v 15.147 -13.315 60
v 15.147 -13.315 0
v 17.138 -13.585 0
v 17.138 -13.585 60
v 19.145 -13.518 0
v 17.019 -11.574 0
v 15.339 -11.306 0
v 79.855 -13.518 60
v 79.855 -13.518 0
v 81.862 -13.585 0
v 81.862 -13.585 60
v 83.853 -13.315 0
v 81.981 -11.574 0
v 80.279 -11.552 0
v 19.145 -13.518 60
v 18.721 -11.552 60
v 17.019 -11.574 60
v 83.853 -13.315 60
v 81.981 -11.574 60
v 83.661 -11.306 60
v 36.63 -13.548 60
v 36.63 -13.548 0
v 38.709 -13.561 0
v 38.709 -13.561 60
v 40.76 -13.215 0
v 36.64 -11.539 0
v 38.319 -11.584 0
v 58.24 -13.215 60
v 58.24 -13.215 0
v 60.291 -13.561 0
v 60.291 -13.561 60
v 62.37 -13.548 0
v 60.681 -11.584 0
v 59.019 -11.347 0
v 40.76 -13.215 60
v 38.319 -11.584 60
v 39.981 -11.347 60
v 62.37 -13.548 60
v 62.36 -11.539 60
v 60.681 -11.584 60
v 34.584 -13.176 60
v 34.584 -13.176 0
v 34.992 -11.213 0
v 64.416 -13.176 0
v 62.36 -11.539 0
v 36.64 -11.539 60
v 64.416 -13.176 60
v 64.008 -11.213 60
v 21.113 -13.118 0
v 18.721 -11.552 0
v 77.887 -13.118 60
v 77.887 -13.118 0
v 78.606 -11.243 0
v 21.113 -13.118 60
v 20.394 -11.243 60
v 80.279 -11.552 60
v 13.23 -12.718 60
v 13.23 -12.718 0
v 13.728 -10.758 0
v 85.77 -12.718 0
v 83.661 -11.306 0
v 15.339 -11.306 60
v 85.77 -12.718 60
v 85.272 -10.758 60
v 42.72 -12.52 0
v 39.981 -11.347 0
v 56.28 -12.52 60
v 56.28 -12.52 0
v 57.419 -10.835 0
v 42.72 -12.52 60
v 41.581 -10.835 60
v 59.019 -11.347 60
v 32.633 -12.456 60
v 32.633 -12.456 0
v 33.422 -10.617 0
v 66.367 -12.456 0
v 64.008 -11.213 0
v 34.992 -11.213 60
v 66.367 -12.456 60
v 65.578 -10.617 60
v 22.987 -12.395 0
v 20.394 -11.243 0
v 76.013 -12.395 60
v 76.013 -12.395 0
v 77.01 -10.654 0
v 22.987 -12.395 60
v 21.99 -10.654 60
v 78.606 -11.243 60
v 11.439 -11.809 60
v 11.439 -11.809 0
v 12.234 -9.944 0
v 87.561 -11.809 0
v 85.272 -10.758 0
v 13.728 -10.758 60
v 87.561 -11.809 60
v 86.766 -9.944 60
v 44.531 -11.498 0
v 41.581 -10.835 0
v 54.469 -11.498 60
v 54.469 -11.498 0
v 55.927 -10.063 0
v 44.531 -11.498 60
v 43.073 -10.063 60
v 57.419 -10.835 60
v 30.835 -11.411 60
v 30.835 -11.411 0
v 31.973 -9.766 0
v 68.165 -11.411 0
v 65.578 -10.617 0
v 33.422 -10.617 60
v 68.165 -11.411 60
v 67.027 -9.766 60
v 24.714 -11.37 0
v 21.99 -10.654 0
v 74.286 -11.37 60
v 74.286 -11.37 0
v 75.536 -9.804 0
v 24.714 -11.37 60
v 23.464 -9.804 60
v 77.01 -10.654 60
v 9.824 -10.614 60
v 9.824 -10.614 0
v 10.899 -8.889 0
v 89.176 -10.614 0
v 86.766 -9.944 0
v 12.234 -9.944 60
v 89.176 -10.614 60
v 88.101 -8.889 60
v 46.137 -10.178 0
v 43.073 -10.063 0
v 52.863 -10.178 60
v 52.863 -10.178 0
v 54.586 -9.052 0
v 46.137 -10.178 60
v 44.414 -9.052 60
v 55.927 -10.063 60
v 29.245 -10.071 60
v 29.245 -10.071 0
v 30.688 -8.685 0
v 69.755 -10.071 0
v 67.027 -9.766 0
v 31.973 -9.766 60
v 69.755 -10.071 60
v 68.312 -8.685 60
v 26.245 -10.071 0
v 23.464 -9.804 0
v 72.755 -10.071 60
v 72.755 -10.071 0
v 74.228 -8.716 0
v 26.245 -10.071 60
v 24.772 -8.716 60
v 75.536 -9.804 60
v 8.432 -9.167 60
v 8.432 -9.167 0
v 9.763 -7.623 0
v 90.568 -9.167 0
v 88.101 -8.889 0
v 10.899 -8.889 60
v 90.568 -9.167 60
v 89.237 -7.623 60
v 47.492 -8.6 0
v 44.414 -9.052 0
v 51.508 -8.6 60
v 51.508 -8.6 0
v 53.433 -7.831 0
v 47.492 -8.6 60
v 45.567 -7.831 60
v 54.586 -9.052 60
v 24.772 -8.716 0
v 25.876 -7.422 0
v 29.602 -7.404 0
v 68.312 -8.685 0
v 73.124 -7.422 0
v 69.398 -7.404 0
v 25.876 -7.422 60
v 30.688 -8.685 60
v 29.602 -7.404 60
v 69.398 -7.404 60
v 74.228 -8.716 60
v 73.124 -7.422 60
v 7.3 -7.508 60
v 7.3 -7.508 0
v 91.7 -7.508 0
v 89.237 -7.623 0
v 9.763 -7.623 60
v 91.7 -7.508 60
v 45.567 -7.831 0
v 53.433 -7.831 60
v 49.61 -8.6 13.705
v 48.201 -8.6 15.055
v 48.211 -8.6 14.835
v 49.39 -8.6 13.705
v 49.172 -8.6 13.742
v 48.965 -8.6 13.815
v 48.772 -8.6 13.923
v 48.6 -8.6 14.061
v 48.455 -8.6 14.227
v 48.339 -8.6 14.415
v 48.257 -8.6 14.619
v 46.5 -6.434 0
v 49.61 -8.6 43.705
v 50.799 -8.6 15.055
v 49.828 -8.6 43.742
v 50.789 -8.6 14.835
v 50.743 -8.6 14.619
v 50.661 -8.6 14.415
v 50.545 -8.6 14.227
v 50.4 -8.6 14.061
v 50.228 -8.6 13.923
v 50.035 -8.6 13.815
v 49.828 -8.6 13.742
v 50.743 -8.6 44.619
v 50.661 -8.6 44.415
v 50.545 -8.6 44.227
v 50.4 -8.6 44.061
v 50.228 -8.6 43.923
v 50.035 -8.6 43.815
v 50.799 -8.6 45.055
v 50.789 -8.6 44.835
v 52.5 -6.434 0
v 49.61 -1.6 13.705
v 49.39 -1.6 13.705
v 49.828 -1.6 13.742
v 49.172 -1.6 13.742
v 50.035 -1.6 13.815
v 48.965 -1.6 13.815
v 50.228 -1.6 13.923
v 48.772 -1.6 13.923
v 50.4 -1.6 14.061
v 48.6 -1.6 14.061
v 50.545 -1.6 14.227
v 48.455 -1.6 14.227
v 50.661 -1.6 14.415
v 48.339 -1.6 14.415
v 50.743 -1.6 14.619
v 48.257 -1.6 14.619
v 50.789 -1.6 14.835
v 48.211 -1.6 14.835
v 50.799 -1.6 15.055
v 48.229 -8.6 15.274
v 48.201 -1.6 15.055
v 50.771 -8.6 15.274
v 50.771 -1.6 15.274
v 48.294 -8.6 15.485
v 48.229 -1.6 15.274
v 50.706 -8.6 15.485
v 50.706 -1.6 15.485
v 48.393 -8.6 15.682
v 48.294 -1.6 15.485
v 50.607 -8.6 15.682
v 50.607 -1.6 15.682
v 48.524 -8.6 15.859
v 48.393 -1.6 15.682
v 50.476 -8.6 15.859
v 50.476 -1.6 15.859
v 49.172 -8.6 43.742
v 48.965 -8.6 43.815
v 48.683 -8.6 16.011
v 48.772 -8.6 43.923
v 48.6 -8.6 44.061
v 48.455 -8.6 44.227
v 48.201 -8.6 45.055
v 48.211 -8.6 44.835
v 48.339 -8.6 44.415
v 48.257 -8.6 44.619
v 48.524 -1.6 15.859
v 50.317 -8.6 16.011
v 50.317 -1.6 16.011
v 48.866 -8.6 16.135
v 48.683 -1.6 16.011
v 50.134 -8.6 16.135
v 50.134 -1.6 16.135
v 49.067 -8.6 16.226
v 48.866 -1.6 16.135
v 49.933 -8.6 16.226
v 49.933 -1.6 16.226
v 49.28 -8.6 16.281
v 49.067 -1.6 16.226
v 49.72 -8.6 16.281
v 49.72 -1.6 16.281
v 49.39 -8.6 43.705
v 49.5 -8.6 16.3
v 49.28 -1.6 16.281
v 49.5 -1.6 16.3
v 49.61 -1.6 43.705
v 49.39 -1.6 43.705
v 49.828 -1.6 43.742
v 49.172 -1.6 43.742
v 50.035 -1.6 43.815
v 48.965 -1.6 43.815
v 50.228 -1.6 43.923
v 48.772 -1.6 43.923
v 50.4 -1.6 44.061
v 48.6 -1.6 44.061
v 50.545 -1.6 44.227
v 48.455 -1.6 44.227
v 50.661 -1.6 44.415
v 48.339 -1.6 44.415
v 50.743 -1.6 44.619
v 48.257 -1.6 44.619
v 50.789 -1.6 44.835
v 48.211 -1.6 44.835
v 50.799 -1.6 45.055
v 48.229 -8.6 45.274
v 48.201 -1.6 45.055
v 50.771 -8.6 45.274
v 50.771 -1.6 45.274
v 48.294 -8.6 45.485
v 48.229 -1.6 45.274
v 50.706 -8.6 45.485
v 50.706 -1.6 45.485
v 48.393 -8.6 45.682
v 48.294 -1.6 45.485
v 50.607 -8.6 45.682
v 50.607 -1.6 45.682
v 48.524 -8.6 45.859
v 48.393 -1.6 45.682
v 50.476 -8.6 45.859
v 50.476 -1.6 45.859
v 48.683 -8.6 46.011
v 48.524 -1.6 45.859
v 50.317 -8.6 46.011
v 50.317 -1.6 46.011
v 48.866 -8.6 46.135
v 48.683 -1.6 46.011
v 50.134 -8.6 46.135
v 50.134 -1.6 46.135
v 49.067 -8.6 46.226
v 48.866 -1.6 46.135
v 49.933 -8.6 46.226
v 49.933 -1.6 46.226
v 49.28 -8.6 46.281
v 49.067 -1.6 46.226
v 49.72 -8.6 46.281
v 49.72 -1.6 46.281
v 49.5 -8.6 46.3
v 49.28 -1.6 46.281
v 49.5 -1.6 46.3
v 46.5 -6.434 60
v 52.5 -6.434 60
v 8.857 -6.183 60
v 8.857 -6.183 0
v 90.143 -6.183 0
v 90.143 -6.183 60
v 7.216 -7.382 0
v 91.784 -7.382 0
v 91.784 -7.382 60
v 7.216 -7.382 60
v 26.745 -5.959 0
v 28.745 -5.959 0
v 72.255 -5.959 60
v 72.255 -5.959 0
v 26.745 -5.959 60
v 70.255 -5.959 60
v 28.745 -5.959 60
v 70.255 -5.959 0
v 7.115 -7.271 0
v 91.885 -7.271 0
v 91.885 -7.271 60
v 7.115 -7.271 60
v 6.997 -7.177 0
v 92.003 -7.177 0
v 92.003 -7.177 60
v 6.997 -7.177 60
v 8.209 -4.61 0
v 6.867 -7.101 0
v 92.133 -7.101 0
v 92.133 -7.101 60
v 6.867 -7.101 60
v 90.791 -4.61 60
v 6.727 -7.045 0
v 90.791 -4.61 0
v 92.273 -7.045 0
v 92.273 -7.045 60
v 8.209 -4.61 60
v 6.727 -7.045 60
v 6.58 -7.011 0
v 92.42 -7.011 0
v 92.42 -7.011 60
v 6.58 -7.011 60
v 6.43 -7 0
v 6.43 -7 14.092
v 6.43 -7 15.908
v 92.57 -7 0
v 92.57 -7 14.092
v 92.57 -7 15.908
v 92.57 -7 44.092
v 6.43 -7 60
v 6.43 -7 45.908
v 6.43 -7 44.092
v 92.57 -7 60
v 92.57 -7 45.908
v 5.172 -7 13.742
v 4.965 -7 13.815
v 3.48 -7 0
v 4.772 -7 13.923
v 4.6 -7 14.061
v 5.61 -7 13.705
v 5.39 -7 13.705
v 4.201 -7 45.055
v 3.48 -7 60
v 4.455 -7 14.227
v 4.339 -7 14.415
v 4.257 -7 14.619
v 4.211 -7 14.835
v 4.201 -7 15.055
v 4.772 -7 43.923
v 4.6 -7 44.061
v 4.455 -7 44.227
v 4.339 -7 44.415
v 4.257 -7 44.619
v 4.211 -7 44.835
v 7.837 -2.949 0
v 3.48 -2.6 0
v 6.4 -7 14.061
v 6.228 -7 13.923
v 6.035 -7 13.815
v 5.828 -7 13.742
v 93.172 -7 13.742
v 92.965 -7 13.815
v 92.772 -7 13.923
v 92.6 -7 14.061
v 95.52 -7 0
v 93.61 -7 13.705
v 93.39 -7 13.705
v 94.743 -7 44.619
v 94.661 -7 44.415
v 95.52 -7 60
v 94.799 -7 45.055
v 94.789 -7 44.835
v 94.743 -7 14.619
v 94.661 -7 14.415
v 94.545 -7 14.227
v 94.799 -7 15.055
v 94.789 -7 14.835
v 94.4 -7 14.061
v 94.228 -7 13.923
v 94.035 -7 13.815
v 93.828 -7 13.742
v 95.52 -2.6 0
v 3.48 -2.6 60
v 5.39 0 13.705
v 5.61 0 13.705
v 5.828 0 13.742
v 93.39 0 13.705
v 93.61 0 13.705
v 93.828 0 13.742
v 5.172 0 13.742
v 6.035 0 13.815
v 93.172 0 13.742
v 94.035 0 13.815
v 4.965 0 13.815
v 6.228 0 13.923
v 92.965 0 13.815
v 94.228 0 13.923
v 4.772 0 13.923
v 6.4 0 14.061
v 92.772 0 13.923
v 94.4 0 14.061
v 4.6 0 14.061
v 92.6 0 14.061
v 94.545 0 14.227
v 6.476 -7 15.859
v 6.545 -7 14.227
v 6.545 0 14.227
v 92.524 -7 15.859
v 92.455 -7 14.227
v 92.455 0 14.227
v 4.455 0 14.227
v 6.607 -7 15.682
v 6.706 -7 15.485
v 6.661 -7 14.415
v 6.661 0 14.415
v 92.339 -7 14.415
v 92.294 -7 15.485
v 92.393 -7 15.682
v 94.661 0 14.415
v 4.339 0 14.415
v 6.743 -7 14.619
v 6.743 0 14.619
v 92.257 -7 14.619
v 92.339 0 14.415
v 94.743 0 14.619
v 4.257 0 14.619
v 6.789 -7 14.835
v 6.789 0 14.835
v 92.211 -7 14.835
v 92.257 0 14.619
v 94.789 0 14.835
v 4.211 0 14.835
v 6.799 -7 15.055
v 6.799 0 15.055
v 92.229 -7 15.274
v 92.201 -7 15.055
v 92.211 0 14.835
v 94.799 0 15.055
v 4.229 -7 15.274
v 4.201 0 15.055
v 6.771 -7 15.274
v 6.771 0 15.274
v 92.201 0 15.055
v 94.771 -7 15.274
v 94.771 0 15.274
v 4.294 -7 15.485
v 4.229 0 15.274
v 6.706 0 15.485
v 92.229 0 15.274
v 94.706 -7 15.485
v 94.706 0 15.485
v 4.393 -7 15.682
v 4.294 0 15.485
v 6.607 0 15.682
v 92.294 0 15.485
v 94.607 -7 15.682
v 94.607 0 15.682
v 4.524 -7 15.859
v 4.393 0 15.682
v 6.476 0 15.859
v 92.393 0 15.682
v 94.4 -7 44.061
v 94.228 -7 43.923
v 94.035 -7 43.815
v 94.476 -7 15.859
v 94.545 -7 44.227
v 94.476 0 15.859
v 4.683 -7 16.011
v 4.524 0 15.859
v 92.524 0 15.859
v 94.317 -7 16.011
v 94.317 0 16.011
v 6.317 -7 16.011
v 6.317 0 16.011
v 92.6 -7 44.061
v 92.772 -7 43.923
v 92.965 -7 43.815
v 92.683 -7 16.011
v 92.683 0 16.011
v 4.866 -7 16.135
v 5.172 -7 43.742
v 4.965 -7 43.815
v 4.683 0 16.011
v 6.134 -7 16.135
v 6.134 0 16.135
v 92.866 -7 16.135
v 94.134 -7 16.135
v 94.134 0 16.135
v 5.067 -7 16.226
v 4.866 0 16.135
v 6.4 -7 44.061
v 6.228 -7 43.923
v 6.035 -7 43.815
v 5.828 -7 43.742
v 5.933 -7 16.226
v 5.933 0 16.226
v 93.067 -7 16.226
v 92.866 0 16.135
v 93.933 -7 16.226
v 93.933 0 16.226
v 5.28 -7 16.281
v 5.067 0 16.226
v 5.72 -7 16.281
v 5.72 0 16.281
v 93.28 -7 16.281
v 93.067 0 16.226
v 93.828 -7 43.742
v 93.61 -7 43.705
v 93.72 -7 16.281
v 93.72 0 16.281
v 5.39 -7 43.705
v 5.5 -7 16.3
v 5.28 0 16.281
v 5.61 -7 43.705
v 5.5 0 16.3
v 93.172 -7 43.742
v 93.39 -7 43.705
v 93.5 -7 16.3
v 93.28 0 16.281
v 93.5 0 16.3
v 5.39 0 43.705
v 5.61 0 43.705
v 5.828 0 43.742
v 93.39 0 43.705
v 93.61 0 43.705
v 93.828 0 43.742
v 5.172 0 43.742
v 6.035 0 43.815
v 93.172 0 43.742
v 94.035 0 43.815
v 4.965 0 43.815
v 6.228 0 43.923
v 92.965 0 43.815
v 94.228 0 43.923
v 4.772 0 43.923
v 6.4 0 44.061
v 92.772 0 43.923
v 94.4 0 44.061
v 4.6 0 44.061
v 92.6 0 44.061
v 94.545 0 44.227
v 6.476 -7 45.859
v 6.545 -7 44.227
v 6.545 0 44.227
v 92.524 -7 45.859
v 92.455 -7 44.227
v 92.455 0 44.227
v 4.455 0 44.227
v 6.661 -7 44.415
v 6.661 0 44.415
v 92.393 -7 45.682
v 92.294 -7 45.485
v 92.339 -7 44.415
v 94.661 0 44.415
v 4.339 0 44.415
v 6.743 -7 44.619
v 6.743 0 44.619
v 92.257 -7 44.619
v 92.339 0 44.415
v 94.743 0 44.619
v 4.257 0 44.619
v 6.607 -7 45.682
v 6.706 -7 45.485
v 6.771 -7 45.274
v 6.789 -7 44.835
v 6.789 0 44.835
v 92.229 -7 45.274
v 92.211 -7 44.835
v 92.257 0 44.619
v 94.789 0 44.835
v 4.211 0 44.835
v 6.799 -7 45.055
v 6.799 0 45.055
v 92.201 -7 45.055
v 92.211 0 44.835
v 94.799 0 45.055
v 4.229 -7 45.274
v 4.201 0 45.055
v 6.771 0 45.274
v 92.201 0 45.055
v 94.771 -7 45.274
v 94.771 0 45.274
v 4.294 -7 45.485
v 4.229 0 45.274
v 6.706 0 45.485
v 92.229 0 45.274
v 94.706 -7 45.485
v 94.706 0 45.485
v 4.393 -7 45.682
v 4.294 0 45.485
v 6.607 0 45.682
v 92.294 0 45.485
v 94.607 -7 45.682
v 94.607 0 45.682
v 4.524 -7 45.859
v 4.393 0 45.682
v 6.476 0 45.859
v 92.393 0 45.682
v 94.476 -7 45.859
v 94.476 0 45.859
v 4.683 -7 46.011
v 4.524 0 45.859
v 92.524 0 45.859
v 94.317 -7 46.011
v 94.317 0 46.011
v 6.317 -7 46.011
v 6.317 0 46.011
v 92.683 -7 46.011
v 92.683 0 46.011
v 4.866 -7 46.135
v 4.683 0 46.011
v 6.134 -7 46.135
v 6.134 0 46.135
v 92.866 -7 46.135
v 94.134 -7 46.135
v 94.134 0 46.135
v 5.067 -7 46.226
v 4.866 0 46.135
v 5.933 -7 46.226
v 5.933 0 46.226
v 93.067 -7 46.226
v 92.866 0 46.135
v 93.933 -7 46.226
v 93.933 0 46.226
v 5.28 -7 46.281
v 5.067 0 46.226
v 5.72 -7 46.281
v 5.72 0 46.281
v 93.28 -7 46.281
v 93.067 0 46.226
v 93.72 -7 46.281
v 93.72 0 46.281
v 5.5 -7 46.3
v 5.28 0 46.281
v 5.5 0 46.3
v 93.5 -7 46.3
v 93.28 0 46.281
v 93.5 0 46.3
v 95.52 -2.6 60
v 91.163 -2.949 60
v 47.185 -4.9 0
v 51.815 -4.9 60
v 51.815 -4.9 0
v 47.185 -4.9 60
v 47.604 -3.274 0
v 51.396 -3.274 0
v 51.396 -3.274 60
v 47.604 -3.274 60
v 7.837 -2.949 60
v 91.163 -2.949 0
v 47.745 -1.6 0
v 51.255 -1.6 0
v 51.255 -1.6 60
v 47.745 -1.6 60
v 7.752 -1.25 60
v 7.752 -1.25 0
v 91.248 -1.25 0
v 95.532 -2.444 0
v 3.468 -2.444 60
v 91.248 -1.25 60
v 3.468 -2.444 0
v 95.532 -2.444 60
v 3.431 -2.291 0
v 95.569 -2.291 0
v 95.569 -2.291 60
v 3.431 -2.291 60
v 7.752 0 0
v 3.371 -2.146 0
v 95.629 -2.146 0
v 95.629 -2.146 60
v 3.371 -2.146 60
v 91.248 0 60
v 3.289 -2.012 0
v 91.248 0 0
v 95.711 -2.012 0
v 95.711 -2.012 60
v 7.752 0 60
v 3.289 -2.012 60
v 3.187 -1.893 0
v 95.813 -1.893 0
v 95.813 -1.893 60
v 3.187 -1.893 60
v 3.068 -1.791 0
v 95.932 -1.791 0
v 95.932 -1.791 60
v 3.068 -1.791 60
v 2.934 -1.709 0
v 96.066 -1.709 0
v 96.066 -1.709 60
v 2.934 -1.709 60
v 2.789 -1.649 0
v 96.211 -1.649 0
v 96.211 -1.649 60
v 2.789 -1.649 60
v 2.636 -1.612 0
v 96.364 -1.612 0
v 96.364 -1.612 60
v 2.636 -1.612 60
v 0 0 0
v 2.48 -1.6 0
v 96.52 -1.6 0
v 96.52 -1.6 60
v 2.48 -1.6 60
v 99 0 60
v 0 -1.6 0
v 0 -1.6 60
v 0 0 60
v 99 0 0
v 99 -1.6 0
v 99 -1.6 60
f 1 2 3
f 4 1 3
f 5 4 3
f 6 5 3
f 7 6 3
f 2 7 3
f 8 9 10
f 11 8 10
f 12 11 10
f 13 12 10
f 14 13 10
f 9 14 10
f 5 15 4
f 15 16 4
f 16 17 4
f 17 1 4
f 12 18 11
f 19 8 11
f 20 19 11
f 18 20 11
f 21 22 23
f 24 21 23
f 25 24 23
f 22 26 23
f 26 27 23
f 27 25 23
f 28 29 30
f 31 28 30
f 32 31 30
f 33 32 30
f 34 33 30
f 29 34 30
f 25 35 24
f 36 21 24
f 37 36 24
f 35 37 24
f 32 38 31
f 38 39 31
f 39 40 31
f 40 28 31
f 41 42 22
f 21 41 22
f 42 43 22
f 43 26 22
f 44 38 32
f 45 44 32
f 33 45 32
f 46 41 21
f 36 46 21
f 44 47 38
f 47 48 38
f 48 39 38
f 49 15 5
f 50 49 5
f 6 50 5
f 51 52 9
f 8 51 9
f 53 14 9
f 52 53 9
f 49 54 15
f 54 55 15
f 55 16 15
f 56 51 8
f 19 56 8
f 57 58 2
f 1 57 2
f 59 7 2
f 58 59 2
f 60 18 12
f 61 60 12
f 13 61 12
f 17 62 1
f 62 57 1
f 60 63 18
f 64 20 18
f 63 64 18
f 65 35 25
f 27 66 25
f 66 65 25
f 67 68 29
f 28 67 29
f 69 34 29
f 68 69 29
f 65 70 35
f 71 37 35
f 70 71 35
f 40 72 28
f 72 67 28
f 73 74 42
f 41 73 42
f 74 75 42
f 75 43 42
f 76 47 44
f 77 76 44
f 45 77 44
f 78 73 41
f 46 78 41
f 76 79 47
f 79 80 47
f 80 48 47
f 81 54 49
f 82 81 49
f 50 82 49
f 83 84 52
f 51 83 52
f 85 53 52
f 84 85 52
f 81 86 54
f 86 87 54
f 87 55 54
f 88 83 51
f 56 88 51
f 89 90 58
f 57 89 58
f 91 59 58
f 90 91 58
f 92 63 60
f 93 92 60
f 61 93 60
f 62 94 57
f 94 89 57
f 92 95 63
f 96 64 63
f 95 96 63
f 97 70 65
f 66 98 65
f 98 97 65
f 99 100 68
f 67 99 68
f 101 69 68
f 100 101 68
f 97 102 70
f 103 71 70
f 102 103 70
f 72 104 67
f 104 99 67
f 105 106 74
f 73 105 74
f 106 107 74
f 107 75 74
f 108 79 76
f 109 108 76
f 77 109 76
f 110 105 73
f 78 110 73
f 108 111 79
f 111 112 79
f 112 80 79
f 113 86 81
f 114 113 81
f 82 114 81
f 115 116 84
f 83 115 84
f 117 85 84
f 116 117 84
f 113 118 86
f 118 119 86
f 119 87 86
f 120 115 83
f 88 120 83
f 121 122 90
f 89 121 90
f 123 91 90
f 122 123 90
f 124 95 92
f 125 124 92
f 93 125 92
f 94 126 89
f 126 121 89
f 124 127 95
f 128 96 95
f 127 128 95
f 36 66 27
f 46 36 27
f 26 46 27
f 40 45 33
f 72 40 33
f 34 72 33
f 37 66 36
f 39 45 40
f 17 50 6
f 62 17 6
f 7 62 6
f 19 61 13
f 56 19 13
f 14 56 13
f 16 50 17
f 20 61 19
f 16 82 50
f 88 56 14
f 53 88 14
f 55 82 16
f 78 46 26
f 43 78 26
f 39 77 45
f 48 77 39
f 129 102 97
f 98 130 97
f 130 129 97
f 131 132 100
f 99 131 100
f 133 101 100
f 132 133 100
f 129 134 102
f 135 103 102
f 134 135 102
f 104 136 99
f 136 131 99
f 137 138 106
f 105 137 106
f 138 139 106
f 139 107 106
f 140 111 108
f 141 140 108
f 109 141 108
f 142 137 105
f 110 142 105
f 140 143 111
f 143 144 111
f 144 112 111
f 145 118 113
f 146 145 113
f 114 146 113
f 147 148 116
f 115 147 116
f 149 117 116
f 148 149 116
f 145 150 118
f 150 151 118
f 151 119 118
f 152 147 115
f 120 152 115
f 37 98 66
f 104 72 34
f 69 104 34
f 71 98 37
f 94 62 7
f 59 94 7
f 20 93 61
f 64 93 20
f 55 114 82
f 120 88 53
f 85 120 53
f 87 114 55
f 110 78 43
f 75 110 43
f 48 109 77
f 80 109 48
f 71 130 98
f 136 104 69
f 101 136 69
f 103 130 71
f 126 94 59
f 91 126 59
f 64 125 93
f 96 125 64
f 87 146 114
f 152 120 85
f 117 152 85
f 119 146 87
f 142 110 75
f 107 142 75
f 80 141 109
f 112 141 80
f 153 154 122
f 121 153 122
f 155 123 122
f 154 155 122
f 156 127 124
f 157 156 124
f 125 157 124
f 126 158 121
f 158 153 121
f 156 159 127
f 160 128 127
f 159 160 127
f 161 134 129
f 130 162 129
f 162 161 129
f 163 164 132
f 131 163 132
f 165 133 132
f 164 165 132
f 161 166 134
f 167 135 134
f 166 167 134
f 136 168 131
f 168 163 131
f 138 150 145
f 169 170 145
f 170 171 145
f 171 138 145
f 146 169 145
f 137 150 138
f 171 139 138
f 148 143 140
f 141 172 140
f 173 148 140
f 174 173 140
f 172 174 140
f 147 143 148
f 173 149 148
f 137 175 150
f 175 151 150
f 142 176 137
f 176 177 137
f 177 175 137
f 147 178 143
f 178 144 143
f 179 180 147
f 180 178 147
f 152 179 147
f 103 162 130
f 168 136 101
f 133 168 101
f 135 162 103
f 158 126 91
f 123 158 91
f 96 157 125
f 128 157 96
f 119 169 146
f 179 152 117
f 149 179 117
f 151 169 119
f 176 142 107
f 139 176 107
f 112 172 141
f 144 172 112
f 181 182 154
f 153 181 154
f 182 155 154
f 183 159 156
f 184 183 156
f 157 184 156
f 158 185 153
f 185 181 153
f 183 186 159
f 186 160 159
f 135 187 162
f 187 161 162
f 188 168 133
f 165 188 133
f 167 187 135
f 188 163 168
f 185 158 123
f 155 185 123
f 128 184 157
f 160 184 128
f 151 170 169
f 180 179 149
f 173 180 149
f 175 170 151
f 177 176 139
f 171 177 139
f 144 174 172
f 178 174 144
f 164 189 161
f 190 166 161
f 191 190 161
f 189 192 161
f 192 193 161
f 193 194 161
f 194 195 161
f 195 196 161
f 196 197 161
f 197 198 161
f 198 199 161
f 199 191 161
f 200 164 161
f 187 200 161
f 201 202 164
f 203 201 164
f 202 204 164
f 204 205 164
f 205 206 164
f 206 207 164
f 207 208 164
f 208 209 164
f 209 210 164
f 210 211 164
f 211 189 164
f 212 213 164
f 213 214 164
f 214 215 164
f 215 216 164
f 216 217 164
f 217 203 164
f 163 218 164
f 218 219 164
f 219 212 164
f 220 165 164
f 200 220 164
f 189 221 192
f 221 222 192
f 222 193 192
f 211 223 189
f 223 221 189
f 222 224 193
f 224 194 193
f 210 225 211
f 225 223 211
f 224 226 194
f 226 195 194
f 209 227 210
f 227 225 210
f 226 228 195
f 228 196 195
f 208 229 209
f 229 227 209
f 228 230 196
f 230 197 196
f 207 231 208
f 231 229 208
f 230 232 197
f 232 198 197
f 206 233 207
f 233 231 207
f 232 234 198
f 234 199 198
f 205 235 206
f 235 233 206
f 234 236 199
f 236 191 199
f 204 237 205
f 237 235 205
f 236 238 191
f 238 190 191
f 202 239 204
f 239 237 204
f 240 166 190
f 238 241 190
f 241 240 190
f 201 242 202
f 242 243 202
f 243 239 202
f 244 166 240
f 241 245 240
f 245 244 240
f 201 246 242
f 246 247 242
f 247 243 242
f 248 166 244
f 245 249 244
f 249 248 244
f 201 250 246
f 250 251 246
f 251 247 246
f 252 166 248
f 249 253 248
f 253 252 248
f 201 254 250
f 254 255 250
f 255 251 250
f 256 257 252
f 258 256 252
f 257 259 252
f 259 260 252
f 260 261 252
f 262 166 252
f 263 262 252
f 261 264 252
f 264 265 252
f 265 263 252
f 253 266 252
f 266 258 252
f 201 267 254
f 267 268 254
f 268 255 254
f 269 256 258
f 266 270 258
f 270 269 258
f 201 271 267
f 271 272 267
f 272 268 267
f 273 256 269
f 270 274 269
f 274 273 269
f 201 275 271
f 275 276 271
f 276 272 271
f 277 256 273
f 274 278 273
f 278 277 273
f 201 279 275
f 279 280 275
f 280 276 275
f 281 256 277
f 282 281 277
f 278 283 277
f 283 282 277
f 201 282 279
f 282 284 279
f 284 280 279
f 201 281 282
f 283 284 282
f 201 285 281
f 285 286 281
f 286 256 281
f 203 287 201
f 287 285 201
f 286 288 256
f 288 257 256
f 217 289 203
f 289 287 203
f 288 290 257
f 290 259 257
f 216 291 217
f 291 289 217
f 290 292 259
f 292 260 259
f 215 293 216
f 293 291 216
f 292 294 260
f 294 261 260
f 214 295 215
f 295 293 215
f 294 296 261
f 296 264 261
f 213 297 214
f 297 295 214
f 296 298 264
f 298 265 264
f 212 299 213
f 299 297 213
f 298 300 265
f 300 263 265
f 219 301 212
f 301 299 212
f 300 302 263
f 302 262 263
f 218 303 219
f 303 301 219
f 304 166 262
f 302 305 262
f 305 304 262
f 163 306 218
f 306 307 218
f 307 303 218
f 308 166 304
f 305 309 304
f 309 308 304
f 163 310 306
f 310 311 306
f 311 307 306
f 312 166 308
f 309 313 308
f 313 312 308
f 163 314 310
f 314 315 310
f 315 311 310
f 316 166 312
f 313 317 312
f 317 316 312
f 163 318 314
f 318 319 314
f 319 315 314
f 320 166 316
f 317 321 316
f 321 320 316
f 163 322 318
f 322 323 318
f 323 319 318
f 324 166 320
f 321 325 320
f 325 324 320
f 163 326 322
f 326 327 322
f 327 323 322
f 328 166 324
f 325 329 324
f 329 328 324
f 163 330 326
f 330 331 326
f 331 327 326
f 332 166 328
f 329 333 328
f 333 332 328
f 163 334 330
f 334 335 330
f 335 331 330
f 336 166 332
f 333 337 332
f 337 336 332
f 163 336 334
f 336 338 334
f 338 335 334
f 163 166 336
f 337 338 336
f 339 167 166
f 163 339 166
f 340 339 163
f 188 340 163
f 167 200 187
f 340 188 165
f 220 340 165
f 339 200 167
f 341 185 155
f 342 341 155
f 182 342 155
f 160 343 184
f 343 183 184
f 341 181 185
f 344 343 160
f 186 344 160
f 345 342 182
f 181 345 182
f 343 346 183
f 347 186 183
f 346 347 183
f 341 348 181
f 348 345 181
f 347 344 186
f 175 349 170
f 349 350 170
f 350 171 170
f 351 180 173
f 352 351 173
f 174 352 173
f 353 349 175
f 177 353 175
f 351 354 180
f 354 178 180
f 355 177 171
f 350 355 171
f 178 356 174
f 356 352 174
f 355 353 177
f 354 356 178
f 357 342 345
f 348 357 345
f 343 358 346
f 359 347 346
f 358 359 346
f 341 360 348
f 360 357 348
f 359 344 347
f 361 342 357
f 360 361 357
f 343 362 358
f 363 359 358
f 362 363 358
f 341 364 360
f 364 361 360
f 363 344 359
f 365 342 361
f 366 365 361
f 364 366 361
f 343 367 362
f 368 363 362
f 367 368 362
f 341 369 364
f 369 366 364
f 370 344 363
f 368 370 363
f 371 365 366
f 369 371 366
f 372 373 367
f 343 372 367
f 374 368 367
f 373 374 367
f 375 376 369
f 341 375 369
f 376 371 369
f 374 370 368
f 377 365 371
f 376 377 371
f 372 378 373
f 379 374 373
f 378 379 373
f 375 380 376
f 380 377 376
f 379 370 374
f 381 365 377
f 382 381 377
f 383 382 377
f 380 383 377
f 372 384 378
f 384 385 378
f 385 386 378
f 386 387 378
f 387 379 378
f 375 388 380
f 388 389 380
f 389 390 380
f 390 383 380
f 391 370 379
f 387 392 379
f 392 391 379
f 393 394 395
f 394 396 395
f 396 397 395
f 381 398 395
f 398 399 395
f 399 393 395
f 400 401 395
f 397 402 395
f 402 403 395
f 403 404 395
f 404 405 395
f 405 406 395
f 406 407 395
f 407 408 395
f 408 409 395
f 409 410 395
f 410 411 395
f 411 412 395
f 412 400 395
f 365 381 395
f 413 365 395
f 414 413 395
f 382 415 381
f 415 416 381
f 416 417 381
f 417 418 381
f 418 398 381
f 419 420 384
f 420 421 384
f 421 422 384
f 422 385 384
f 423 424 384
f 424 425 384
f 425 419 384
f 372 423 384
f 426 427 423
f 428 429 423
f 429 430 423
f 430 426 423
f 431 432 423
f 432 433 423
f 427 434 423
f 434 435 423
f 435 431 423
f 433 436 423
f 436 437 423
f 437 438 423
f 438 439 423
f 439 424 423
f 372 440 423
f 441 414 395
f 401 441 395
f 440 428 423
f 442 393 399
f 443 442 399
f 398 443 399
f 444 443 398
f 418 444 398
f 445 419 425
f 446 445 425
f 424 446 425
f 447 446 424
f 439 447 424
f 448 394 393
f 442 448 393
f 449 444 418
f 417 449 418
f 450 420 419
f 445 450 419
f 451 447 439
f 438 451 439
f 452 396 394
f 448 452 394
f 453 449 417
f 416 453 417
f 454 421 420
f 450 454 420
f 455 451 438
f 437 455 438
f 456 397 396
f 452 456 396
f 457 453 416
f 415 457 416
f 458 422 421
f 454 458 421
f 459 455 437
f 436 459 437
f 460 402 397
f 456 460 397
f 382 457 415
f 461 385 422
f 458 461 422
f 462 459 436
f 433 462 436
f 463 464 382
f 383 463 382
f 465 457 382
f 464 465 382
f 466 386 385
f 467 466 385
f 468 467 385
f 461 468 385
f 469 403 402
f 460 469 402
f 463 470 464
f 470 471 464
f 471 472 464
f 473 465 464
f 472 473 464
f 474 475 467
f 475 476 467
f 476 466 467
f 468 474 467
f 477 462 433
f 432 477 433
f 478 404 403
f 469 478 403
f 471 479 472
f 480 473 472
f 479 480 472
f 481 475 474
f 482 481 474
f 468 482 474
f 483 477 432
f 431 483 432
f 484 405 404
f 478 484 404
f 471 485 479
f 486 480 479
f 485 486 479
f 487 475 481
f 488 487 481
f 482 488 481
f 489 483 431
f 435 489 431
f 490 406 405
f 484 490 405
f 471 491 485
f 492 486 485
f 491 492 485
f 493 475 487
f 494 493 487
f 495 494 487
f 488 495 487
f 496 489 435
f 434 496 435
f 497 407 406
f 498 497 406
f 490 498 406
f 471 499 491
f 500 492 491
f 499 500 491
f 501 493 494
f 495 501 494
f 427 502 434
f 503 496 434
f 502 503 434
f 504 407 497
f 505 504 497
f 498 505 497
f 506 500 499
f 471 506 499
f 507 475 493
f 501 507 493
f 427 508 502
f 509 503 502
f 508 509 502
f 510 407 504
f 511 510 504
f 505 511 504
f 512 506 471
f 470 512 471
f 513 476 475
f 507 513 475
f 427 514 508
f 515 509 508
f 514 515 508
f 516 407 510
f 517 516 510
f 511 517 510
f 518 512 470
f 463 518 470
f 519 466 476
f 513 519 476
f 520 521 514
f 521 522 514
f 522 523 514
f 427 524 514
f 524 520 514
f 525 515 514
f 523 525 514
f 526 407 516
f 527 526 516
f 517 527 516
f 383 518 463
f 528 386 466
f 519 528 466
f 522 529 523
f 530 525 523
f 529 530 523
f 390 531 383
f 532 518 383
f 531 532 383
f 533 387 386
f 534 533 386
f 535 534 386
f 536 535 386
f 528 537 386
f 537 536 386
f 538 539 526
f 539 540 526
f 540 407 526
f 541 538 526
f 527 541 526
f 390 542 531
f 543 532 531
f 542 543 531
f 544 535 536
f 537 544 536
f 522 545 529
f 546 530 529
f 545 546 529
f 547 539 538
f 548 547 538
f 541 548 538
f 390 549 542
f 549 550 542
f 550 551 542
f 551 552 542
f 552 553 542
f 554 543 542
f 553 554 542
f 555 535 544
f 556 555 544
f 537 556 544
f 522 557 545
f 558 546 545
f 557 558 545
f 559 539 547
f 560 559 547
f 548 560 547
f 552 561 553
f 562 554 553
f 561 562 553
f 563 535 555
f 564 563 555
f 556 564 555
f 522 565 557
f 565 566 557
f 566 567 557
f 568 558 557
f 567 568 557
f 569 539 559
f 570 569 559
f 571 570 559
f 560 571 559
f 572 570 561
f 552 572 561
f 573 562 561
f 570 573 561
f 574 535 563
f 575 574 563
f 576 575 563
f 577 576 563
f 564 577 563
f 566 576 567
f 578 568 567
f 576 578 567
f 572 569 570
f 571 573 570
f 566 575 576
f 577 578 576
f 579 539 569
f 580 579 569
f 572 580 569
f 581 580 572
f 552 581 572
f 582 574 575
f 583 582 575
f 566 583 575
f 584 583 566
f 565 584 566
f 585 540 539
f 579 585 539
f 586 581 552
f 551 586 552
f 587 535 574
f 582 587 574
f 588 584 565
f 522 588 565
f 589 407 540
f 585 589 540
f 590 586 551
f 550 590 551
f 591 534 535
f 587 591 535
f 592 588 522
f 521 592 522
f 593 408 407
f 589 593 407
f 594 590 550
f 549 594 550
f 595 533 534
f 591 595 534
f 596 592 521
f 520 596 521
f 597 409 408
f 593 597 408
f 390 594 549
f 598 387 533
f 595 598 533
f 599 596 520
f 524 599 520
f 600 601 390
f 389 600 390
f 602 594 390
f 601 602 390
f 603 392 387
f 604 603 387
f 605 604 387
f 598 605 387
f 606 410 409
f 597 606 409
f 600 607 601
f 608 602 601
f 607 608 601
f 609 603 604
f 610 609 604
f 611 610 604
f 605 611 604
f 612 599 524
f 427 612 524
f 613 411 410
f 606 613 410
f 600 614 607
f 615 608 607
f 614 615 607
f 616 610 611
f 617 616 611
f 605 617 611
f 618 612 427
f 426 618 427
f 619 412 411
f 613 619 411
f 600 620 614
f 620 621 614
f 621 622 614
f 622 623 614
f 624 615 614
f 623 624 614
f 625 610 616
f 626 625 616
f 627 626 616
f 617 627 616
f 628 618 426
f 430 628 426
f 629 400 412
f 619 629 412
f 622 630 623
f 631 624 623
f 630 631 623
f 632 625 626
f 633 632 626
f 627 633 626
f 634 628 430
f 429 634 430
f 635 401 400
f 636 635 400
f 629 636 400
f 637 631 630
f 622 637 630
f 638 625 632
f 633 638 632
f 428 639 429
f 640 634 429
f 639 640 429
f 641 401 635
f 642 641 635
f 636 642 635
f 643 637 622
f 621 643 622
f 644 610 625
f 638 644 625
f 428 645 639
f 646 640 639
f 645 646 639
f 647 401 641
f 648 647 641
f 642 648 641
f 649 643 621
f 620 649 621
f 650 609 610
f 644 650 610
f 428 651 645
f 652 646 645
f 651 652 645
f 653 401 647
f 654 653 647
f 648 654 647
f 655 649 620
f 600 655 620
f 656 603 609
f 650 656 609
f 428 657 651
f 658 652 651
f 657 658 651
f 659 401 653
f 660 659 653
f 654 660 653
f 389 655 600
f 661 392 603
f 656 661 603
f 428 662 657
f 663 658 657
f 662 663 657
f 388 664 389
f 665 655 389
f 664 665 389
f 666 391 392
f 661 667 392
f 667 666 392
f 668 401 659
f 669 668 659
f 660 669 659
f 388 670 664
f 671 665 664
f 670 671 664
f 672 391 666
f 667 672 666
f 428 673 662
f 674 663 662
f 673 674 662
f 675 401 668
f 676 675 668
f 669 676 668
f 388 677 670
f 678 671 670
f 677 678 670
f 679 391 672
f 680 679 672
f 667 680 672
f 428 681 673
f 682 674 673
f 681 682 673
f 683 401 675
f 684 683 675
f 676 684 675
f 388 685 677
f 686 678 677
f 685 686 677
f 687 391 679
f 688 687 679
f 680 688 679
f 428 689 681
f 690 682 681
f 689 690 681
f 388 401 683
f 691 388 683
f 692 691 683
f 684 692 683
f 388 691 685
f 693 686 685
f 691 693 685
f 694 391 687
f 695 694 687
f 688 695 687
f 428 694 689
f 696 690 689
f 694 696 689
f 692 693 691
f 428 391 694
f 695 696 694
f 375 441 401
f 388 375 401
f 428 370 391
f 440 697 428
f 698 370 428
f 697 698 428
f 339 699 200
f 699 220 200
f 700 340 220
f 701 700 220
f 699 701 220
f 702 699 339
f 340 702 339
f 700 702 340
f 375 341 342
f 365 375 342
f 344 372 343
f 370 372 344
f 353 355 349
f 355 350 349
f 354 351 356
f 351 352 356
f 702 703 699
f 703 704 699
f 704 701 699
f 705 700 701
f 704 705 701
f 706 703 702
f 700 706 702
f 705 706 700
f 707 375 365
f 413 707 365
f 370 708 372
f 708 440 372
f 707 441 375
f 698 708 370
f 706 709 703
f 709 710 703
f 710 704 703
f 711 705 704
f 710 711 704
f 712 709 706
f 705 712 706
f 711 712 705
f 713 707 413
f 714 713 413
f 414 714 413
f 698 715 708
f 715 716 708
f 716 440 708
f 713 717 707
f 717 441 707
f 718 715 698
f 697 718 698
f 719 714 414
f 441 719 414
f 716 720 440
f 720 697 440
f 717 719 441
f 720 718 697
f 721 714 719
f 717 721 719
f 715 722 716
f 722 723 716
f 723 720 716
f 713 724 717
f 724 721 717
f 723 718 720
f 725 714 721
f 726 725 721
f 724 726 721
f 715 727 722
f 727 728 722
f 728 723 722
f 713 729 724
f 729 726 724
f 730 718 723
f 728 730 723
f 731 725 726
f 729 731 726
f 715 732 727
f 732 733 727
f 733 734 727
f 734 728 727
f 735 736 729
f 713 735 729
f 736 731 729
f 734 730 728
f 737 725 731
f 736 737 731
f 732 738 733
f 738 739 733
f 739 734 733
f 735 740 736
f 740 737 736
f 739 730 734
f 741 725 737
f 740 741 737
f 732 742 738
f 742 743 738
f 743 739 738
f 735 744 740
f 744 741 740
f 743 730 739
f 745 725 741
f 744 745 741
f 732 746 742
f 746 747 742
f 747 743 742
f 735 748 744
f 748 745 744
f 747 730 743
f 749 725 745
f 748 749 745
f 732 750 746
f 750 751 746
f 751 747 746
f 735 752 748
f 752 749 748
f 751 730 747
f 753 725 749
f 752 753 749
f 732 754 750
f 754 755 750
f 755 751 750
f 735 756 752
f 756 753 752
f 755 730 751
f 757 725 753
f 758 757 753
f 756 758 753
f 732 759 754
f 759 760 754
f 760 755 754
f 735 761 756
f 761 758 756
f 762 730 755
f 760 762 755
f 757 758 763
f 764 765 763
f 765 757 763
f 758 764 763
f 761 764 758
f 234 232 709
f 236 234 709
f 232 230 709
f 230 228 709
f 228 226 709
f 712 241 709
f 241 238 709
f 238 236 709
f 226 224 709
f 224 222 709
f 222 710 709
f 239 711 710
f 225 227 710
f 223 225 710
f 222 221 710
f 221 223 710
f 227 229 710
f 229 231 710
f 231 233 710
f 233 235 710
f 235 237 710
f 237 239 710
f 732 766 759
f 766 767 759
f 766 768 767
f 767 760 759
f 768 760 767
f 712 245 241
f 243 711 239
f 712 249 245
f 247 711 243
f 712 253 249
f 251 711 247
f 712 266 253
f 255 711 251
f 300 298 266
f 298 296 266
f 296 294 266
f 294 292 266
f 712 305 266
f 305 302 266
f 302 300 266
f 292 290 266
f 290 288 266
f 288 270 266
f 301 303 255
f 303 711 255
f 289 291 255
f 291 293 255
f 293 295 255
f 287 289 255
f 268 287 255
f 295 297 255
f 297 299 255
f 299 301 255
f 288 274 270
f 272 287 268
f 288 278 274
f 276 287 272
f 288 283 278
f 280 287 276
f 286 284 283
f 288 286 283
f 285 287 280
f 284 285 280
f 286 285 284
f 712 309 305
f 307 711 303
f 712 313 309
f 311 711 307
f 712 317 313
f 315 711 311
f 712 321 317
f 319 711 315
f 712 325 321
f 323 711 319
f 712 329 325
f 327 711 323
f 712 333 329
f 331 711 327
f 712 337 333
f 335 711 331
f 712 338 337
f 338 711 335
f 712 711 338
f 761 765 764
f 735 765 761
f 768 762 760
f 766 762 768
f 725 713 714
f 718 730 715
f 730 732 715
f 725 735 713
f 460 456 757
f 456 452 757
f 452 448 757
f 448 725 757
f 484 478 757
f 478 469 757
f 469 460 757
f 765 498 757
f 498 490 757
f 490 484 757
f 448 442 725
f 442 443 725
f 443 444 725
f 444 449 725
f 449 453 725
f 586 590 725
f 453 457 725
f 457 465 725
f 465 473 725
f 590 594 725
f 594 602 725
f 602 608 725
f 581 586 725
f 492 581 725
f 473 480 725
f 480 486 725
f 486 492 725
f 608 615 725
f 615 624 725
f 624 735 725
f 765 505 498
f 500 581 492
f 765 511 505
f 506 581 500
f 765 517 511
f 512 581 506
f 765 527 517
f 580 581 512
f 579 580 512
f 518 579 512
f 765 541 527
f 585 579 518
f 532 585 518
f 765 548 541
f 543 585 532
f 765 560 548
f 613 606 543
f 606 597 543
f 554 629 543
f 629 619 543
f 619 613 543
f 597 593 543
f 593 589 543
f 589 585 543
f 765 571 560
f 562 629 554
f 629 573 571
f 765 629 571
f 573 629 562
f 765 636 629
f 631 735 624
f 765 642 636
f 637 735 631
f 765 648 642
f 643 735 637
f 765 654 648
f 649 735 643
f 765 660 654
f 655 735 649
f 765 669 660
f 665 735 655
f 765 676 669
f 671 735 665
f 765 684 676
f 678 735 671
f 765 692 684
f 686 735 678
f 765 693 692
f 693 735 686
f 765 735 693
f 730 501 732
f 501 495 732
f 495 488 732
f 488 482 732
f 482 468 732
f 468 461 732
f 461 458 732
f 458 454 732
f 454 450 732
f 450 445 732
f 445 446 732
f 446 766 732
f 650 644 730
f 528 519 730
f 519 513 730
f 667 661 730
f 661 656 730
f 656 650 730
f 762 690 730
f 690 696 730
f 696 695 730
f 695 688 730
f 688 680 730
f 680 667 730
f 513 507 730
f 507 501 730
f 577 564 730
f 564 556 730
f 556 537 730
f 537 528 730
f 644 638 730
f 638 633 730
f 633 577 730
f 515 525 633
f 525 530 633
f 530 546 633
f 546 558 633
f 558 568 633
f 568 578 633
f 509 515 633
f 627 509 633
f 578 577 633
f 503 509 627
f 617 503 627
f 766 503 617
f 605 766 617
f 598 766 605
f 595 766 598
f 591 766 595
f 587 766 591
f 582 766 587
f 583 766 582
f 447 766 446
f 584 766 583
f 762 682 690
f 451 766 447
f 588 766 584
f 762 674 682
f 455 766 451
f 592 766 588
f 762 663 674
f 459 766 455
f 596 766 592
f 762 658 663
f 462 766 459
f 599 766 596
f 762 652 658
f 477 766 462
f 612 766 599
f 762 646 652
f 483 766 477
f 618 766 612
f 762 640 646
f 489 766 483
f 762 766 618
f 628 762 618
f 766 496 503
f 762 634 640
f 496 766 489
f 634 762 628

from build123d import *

# Parameters (mm, degrees)
BOSS_EXTRUDE1_DEPTH                  = 60
FILLET1_R                            = 1
F_2_6_START                          = -7
F_2_6_2_6_DIAMETER_HOLE1_OUTLINE_R   = 1.3
F_2_6_2_6_DIAMETER_HOLE1_DEPTH       = 7
F_2_6_START_2                        = -8.6
F_2_6_2_6_DIAMETER_HOLE1_2_OUTLINE_R = 1.3
F_2_6_2_6_DIAMETER_HOLE1_2_DEPTH     = 1.6


# Read off the part's stored shape, not the designer's step: Ø2.6 (2.6) Diameter Hole1
with BuildPart() as part:
    # Sketch1 → Boss-Extrude1 (new body)
    with BuildSketch(Plane.XY):
        with BuildLine():
            Line((0, 0), (7.751531367, 0))
            Line((7.751531367, 0), (7.751531367, -1.25))
            ThreePointArc((7.751531367, -1.25), (15.339084008, -11.30616411), (26.74540449, -5.958898944))
            Line((26.74540449, -5.958898944), (28.74540449, -5.958898944))
            ThreePointArc((28.74540449, -5.958898944), (39.981472468, -11.346794345), (47.74540449, -1.6))
            Line((47.74540449, -1.6), (51.25459551, -1.6))
            ThreePointArc((51.25459551, -1.6), (59.018527532, -11.346794345), (70.25459551, -5.958898944))
            Line((70.25459551, -5.958898944), (72.25459551, -5.958898944))
            ThreePointArc((72.25459551, -5.958898944), (83.660915992, -11.30616411), (91.248468633, -1.25))
            Line((91.248468633, -1.25), (91.248468633, 0))
            Line((91.248468633, 0), (99, 0))
            Line((99, 0), (99, -1.6))
            Line((99, -1.6), (95.52, -1.6))
            Line((95.52, -1.6), (95.52, -7))
            Line((95.52, -7), (91.970938169, -7))
            ThreePointArc((91.970938169, -7), (83.148029778, -13.449679602), (72.75459551, -10.070537173))
            Line((72.75459551, -10.070537173), (69.75459551, -10.070537173))
            ThreePointArc((69.75459551, -10.070537173), (60.290622518, -13.561218837), (51.507801165, -8.6))
            Line((51.507801165, -8.6), (47.492198835, -8.6))
            ThreePointArc((47.492198835, -8.6), (38.709377482, -13.561218837), (29.24540449, -10.070537173))
            Line((29.24540449, -10.070537173), (26.24540449, -10.070537173))
            ThreePointArc((26.24540449, -10.070537173), (15.851970222, -13.449679602), (7.029061831, -7))
            Line((7.029061831, -7), (3.48, -7))
            Line((3.48, -7), (3.48, -1.6))
            Line((3.48, -1.6), (0, -1.6))
            Line((0, -1.6), (0, 0))
        make_face()
    extrude(amount=BOSS_EXTRUDE1_DEPTH)

    # Fillet1
    fillet1_edges = [part.edges().sort_by_distance(p)[0] for p in [
        (95.52, -1.6, 30),
        (91.970938169, -7, 30),
        (7.029061831, -7, 30),
        (3.48, -1.6, 30),
    ]]
    fillet(fillet1_edges, radius=FILLET1_R)

    # Ø2.6 (2.6) Diameter Hole1 outline → Ø2.6 (2.6) Diameter Hole1 (cut)
    with BuildSketch(Plane(origin=(0, 0, 0), x_dir=(1, 0, 0), z_dir=(0, 1, 0)).offset(F_2_6_START)):
        with Locations((93.5, -15)):
            Circle(F_2_6_2_6_DIAMETER_HOLE1_OUTLINE_R)
        with Locations((93.5, -45)):
            Circle(F_2_6_2_6_DIAMETER_HOLE1_OUTLINE_R)
        with Locations((49.5, -15)):
            Circle(F_2_6_2_6_DIAMETER_HOLE1_OUTLINE_R)
        with Locations((49.5, -45)):
            Circle(F_2_6_2_6_DIAMETER_HOLE1_OUTLINE_R)
    f_2_6_2_6_diameter_hole1 = extrude(amount=F_2_6_2_6_DIAMETER_HOLE1_DEPTH, mode=Mode.SUBTRACT)

    # 2.6 _2.6_ Diameter Hole1 2 outline → 2.6 _2.6_ Diameter Hole1 2 (cut)
    with BuildSketch(Plane(origin=(0, 0, 0), x_dir=(1, 0, 0), z_dir=(0, 1, 0)).offset(F_2_6_START_2)):
        with Locations((49.5, -15)):
            Circle(F_2_6_2_6_DIAMETER_HOLE1_2_OUTLINE_R)
        with Locations((49.5, -45)):
            Circle(F_2_6_2_6_DIAMETER_HOLE1_2_OUTLINE_R)
    f_2_6_2_6_diameter_hole1_2 = extrude(amount=F_2_6_2_6_DIAMETER_HOLE1_2_DEPTH, mode=Mode.SUBTRACT)

    # Mirror1: Ø2.6 (2.6) Diameter Hole1, 2.6 _2.6_ Diameter Hole1 2 across plane
    add(f_2_6_2_6_diameter_hole1.mirror(Plane.ZY.offset(-49.5)), mode=Mode.SUBTRACT)
    add(f_2_6_2_6_diameter_hole1_2.mirror(Plane.ZY.offset(-49.5)), mode=Mode.SUBTRACT)


solid = part.part
